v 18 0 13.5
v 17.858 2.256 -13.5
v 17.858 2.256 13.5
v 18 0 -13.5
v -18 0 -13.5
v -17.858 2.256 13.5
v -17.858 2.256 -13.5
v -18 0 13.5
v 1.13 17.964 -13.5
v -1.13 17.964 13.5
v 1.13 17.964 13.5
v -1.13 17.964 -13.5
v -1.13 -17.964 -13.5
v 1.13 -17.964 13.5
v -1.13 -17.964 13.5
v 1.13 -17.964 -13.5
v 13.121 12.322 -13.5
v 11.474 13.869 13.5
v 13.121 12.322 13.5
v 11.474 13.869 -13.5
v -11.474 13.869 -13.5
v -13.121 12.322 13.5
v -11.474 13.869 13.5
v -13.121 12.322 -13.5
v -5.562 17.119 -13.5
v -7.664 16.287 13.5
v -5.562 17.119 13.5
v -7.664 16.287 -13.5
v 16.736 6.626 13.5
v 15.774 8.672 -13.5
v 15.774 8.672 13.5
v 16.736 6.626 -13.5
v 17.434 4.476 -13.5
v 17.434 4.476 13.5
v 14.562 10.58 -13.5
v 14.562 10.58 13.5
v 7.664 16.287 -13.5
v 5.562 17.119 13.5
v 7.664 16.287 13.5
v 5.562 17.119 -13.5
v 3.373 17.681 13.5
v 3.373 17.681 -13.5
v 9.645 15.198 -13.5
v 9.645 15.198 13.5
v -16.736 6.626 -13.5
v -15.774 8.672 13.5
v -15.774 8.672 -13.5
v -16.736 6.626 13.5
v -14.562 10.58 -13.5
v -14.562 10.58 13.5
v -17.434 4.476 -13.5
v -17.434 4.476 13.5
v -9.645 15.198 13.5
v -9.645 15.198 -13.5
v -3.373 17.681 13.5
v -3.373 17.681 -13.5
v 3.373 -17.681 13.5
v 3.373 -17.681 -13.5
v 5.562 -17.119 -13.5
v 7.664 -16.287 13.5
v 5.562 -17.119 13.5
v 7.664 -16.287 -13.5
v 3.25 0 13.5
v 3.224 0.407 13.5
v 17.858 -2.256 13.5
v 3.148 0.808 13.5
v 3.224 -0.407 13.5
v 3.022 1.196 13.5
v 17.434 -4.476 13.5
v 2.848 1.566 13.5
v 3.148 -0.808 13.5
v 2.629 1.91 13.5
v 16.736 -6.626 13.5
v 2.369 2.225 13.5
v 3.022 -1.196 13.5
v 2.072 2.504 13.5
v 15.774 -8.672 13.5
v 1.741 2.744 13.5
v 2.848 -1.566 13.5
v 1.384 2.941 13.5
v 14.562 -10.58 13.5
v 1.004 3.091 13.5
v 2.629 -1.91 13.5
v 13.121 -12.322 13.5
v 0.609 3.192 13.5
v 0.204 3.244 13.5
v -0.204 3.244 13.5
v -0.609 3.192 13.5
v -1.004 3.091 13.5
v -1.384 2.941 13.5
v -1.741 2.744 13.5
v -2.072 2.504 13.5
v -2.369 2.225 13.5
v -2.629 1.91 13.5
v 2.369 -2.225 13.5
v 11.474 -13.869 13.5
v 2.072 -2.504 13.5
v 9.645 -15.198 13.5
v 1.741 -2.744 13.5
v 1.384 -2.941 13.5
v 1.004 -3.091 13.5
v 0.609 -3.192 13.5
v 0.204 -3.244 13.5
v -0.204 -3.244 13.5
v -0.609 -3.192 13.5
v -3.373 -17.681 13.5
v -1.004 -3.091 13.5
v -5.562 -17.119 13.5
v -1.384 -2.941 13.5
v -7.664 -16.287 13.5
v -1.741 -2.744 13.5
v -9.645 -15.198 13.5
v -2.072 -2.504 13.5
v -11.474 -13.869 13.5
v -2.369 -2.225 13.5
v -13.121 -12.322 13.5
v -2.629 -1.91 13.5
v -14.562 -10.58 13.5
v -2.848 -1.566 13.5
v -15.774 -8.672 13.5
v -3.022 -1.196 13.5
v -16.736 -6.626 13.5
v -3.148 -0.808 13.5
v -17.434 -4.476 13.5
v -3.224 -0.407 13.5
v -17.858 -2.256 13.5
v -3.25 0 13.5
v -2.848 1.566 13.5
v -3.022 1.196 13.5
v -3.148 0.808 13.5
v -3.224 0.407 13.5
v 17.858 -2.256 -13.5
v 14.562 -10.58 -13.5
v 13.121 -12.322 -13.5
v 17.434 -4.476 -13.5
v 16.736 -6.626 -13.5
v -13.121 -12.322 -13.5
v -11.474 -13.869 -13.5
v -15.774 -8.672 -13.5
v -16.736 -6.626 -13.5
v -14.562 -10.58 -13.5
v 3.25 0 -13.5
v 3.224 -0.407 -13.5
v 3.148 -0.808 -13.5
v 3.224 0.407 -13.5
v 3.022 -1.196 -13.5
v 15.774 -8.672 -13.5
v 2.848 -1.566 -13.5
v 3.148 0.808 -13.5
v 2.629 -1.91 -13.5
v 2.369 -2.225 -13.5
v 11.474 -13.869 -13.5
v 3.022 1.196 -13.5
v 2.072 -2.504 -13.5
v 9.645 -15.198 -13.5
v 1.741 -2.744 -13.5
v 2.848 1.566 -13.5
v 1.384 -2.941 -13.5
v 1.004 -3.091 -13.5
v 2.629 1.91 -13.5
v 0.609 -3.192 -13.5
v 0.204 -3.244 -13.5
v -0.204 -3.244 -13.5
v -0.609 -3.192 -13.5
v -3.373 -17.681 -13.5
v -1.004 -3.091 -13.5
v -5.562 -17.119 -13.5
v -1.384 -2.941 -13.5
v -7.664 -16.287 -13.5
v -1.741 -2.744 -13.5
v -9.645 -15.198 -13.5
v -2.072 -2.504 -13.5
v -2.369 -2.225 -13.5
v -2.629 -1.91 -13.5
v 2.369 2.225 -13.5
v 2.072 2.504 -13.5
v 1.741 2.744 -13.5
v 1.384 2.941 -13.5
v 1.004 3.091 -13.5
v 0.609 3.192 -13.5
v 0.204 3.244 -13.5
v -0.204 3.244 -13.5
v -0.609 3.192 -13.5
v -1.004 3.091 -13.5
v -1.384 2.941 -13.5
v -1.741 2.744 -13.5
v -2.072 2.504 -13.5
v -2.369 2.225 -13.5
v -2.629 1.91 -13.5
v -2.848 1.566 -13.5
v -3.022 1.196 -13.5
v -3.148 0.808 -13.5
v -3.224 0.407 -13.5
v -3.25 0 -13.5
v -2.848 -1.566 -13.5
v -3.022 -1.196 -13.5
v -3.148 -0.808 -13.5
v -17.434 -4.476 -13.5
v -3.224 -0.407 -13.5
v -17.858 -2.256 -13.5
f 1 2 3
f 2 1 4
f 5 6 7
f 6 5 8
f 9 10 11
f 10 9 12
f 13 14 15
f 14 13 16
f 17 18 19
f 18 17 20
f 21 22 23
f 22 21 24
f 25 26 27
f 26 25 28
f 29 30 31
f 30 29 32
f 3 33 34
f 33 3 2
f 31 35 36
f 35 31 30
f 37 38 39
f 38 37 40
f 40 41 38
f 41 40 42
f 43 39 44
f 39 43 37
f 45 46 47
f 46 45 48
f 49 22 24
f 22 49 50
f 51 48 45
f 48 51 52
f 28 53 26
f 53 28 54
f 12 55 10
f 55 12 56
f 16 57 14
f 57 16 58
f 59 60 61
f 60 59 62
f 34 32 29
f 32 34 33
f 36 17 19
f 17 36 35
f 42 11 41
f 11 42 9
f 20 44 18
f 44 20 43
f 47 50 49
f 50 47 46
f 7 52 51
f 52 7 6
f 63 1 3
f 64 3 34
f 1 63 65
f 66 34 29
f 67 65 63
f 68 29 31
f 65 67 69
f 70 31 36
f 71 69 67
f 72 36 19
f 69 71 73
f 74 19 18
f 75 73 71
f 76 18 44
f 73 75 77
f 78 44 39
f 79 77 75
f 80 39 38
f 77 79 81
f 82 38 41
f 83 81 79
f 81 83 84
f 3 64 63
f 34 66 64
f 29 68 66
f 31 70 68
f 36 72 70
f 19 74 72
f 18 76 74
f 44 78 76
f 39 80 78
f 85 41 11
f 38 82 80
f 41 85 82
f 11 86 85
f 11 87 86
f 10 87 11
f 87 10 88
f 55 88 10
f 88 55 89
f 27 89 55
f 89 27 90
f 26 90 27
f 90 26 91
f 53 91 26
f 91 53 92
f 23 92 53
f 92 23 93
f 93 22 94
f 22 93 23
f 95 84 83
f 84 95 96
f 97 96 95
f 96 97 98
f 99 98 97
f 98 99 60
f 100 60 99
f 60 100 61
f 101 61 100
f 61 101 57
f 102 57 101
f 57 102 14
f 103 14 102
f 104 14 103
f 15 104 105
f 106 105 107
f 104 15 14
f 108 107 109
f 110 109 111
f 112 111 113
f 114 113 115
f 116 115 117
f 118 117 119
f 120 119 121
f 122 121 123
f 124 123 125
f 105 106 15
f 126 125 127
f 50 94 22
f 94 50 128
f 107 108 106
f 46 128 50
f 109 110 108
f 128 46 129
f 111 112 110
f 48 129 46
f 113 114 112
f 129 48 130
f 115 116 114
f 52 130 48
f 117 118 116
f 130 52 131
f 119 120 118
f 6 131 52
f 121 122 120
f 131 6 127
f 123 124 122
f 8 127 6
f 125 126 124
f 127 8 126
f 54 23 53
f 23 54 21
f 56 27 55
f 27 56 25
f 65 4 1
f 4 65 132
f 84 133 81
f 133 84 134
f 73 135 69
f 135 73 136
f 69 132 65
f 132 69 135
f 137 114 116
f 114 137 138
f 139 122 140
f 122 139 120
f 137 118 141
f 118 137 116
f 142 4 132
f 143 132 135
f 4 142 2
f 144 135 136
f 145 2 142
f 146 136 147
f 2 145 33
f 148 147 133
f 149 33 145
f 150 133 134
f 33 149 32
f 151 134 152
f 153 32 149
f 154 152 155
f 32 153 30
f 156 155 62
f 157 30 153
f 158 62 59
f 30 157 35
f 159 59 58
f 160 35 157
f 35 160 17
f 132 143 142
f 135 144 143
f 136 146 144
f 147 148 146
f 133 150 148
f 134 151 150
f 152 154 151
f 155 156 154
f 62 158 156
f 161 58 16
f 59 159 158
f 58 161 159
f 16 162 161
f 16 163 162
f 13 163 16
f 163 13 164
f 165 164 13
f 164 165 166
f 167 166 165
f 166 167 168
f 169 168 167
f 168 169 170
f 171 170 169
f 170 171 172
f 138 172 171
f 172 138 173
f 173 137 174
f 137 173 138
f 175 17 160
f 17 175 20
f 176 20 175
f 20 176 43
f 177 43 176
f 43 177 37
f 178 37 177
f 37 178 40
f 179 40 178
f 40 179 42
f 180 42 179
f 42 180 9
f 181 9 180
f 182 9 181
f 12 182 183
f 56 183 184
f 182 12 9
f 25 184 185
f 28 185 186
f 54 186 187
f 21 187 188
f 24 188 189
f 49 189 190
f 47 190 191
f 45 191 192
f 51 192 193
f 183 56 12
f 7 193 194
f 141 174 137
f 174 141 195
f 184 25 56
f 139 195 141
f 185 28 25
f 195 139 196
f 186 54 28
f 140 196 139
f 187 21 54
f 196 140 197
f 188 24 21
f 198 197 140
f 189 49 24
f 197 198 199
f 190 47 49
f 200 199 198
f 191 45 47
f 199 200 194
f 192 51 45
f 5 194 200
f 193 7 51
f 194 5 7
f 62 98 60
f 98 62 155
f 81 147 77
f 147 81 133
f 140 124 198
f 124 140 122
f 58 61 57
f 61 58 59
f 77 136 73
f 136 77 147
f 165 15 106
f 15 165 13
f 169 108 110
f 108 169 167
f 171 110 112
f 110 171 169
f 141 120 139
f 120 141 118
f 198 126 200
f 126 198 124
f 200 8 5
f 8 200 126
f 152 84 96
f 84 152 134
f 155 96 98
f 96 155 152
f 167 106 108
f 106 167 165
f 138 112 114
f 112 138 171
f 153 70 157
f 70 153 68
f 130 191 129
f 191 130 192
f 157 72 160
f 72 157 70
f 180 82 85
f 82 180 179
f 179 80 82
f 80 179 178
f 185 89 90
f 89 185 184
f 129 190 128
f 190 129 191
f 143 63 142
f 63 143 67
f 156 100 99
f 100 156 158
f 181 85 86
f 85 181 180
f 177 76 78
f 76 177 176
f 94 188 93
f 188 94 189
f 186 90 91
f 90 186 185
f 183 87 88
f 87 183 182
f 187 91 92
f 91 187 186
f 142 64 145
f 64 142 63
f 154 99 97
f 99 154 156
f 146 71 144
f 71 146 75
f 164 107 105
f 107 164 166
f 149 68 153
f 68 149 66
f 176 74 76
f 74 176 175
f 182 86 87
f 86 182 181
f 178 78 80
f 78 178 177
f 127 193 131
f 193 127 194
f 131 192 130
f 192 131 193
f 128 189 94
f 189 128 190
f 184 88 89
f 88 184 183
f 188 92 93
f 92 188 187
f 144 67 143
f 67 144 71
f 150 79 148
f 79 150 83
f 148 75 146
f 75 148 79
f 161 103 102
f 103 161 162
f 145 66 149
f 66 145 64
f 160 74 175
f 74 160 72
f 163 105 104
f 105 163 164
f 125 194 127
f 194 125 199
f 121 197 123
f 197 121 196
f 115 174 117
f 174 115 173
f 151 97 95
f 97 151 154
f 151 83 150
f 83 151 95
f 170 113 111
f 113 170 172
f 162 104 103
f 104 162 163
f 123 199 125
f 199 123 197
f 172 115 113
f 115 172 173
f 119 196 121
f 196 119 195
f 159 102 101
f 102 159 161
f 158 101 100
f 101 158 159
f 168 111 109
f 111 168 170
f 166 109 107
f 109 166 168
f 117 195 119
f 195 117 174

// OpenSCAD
$fn = 50;


difference() {
	union() {
		translate(v = [0, 0, -13.5000000000]) {
			cylinder(h = 27, r = 18.0000000000);
		}
	}
	union() {
		translate(v = [0, 0, -100.0000000000]) {
			cylinder(h = 200, r = 3.2500000000);
		}
	}
}
